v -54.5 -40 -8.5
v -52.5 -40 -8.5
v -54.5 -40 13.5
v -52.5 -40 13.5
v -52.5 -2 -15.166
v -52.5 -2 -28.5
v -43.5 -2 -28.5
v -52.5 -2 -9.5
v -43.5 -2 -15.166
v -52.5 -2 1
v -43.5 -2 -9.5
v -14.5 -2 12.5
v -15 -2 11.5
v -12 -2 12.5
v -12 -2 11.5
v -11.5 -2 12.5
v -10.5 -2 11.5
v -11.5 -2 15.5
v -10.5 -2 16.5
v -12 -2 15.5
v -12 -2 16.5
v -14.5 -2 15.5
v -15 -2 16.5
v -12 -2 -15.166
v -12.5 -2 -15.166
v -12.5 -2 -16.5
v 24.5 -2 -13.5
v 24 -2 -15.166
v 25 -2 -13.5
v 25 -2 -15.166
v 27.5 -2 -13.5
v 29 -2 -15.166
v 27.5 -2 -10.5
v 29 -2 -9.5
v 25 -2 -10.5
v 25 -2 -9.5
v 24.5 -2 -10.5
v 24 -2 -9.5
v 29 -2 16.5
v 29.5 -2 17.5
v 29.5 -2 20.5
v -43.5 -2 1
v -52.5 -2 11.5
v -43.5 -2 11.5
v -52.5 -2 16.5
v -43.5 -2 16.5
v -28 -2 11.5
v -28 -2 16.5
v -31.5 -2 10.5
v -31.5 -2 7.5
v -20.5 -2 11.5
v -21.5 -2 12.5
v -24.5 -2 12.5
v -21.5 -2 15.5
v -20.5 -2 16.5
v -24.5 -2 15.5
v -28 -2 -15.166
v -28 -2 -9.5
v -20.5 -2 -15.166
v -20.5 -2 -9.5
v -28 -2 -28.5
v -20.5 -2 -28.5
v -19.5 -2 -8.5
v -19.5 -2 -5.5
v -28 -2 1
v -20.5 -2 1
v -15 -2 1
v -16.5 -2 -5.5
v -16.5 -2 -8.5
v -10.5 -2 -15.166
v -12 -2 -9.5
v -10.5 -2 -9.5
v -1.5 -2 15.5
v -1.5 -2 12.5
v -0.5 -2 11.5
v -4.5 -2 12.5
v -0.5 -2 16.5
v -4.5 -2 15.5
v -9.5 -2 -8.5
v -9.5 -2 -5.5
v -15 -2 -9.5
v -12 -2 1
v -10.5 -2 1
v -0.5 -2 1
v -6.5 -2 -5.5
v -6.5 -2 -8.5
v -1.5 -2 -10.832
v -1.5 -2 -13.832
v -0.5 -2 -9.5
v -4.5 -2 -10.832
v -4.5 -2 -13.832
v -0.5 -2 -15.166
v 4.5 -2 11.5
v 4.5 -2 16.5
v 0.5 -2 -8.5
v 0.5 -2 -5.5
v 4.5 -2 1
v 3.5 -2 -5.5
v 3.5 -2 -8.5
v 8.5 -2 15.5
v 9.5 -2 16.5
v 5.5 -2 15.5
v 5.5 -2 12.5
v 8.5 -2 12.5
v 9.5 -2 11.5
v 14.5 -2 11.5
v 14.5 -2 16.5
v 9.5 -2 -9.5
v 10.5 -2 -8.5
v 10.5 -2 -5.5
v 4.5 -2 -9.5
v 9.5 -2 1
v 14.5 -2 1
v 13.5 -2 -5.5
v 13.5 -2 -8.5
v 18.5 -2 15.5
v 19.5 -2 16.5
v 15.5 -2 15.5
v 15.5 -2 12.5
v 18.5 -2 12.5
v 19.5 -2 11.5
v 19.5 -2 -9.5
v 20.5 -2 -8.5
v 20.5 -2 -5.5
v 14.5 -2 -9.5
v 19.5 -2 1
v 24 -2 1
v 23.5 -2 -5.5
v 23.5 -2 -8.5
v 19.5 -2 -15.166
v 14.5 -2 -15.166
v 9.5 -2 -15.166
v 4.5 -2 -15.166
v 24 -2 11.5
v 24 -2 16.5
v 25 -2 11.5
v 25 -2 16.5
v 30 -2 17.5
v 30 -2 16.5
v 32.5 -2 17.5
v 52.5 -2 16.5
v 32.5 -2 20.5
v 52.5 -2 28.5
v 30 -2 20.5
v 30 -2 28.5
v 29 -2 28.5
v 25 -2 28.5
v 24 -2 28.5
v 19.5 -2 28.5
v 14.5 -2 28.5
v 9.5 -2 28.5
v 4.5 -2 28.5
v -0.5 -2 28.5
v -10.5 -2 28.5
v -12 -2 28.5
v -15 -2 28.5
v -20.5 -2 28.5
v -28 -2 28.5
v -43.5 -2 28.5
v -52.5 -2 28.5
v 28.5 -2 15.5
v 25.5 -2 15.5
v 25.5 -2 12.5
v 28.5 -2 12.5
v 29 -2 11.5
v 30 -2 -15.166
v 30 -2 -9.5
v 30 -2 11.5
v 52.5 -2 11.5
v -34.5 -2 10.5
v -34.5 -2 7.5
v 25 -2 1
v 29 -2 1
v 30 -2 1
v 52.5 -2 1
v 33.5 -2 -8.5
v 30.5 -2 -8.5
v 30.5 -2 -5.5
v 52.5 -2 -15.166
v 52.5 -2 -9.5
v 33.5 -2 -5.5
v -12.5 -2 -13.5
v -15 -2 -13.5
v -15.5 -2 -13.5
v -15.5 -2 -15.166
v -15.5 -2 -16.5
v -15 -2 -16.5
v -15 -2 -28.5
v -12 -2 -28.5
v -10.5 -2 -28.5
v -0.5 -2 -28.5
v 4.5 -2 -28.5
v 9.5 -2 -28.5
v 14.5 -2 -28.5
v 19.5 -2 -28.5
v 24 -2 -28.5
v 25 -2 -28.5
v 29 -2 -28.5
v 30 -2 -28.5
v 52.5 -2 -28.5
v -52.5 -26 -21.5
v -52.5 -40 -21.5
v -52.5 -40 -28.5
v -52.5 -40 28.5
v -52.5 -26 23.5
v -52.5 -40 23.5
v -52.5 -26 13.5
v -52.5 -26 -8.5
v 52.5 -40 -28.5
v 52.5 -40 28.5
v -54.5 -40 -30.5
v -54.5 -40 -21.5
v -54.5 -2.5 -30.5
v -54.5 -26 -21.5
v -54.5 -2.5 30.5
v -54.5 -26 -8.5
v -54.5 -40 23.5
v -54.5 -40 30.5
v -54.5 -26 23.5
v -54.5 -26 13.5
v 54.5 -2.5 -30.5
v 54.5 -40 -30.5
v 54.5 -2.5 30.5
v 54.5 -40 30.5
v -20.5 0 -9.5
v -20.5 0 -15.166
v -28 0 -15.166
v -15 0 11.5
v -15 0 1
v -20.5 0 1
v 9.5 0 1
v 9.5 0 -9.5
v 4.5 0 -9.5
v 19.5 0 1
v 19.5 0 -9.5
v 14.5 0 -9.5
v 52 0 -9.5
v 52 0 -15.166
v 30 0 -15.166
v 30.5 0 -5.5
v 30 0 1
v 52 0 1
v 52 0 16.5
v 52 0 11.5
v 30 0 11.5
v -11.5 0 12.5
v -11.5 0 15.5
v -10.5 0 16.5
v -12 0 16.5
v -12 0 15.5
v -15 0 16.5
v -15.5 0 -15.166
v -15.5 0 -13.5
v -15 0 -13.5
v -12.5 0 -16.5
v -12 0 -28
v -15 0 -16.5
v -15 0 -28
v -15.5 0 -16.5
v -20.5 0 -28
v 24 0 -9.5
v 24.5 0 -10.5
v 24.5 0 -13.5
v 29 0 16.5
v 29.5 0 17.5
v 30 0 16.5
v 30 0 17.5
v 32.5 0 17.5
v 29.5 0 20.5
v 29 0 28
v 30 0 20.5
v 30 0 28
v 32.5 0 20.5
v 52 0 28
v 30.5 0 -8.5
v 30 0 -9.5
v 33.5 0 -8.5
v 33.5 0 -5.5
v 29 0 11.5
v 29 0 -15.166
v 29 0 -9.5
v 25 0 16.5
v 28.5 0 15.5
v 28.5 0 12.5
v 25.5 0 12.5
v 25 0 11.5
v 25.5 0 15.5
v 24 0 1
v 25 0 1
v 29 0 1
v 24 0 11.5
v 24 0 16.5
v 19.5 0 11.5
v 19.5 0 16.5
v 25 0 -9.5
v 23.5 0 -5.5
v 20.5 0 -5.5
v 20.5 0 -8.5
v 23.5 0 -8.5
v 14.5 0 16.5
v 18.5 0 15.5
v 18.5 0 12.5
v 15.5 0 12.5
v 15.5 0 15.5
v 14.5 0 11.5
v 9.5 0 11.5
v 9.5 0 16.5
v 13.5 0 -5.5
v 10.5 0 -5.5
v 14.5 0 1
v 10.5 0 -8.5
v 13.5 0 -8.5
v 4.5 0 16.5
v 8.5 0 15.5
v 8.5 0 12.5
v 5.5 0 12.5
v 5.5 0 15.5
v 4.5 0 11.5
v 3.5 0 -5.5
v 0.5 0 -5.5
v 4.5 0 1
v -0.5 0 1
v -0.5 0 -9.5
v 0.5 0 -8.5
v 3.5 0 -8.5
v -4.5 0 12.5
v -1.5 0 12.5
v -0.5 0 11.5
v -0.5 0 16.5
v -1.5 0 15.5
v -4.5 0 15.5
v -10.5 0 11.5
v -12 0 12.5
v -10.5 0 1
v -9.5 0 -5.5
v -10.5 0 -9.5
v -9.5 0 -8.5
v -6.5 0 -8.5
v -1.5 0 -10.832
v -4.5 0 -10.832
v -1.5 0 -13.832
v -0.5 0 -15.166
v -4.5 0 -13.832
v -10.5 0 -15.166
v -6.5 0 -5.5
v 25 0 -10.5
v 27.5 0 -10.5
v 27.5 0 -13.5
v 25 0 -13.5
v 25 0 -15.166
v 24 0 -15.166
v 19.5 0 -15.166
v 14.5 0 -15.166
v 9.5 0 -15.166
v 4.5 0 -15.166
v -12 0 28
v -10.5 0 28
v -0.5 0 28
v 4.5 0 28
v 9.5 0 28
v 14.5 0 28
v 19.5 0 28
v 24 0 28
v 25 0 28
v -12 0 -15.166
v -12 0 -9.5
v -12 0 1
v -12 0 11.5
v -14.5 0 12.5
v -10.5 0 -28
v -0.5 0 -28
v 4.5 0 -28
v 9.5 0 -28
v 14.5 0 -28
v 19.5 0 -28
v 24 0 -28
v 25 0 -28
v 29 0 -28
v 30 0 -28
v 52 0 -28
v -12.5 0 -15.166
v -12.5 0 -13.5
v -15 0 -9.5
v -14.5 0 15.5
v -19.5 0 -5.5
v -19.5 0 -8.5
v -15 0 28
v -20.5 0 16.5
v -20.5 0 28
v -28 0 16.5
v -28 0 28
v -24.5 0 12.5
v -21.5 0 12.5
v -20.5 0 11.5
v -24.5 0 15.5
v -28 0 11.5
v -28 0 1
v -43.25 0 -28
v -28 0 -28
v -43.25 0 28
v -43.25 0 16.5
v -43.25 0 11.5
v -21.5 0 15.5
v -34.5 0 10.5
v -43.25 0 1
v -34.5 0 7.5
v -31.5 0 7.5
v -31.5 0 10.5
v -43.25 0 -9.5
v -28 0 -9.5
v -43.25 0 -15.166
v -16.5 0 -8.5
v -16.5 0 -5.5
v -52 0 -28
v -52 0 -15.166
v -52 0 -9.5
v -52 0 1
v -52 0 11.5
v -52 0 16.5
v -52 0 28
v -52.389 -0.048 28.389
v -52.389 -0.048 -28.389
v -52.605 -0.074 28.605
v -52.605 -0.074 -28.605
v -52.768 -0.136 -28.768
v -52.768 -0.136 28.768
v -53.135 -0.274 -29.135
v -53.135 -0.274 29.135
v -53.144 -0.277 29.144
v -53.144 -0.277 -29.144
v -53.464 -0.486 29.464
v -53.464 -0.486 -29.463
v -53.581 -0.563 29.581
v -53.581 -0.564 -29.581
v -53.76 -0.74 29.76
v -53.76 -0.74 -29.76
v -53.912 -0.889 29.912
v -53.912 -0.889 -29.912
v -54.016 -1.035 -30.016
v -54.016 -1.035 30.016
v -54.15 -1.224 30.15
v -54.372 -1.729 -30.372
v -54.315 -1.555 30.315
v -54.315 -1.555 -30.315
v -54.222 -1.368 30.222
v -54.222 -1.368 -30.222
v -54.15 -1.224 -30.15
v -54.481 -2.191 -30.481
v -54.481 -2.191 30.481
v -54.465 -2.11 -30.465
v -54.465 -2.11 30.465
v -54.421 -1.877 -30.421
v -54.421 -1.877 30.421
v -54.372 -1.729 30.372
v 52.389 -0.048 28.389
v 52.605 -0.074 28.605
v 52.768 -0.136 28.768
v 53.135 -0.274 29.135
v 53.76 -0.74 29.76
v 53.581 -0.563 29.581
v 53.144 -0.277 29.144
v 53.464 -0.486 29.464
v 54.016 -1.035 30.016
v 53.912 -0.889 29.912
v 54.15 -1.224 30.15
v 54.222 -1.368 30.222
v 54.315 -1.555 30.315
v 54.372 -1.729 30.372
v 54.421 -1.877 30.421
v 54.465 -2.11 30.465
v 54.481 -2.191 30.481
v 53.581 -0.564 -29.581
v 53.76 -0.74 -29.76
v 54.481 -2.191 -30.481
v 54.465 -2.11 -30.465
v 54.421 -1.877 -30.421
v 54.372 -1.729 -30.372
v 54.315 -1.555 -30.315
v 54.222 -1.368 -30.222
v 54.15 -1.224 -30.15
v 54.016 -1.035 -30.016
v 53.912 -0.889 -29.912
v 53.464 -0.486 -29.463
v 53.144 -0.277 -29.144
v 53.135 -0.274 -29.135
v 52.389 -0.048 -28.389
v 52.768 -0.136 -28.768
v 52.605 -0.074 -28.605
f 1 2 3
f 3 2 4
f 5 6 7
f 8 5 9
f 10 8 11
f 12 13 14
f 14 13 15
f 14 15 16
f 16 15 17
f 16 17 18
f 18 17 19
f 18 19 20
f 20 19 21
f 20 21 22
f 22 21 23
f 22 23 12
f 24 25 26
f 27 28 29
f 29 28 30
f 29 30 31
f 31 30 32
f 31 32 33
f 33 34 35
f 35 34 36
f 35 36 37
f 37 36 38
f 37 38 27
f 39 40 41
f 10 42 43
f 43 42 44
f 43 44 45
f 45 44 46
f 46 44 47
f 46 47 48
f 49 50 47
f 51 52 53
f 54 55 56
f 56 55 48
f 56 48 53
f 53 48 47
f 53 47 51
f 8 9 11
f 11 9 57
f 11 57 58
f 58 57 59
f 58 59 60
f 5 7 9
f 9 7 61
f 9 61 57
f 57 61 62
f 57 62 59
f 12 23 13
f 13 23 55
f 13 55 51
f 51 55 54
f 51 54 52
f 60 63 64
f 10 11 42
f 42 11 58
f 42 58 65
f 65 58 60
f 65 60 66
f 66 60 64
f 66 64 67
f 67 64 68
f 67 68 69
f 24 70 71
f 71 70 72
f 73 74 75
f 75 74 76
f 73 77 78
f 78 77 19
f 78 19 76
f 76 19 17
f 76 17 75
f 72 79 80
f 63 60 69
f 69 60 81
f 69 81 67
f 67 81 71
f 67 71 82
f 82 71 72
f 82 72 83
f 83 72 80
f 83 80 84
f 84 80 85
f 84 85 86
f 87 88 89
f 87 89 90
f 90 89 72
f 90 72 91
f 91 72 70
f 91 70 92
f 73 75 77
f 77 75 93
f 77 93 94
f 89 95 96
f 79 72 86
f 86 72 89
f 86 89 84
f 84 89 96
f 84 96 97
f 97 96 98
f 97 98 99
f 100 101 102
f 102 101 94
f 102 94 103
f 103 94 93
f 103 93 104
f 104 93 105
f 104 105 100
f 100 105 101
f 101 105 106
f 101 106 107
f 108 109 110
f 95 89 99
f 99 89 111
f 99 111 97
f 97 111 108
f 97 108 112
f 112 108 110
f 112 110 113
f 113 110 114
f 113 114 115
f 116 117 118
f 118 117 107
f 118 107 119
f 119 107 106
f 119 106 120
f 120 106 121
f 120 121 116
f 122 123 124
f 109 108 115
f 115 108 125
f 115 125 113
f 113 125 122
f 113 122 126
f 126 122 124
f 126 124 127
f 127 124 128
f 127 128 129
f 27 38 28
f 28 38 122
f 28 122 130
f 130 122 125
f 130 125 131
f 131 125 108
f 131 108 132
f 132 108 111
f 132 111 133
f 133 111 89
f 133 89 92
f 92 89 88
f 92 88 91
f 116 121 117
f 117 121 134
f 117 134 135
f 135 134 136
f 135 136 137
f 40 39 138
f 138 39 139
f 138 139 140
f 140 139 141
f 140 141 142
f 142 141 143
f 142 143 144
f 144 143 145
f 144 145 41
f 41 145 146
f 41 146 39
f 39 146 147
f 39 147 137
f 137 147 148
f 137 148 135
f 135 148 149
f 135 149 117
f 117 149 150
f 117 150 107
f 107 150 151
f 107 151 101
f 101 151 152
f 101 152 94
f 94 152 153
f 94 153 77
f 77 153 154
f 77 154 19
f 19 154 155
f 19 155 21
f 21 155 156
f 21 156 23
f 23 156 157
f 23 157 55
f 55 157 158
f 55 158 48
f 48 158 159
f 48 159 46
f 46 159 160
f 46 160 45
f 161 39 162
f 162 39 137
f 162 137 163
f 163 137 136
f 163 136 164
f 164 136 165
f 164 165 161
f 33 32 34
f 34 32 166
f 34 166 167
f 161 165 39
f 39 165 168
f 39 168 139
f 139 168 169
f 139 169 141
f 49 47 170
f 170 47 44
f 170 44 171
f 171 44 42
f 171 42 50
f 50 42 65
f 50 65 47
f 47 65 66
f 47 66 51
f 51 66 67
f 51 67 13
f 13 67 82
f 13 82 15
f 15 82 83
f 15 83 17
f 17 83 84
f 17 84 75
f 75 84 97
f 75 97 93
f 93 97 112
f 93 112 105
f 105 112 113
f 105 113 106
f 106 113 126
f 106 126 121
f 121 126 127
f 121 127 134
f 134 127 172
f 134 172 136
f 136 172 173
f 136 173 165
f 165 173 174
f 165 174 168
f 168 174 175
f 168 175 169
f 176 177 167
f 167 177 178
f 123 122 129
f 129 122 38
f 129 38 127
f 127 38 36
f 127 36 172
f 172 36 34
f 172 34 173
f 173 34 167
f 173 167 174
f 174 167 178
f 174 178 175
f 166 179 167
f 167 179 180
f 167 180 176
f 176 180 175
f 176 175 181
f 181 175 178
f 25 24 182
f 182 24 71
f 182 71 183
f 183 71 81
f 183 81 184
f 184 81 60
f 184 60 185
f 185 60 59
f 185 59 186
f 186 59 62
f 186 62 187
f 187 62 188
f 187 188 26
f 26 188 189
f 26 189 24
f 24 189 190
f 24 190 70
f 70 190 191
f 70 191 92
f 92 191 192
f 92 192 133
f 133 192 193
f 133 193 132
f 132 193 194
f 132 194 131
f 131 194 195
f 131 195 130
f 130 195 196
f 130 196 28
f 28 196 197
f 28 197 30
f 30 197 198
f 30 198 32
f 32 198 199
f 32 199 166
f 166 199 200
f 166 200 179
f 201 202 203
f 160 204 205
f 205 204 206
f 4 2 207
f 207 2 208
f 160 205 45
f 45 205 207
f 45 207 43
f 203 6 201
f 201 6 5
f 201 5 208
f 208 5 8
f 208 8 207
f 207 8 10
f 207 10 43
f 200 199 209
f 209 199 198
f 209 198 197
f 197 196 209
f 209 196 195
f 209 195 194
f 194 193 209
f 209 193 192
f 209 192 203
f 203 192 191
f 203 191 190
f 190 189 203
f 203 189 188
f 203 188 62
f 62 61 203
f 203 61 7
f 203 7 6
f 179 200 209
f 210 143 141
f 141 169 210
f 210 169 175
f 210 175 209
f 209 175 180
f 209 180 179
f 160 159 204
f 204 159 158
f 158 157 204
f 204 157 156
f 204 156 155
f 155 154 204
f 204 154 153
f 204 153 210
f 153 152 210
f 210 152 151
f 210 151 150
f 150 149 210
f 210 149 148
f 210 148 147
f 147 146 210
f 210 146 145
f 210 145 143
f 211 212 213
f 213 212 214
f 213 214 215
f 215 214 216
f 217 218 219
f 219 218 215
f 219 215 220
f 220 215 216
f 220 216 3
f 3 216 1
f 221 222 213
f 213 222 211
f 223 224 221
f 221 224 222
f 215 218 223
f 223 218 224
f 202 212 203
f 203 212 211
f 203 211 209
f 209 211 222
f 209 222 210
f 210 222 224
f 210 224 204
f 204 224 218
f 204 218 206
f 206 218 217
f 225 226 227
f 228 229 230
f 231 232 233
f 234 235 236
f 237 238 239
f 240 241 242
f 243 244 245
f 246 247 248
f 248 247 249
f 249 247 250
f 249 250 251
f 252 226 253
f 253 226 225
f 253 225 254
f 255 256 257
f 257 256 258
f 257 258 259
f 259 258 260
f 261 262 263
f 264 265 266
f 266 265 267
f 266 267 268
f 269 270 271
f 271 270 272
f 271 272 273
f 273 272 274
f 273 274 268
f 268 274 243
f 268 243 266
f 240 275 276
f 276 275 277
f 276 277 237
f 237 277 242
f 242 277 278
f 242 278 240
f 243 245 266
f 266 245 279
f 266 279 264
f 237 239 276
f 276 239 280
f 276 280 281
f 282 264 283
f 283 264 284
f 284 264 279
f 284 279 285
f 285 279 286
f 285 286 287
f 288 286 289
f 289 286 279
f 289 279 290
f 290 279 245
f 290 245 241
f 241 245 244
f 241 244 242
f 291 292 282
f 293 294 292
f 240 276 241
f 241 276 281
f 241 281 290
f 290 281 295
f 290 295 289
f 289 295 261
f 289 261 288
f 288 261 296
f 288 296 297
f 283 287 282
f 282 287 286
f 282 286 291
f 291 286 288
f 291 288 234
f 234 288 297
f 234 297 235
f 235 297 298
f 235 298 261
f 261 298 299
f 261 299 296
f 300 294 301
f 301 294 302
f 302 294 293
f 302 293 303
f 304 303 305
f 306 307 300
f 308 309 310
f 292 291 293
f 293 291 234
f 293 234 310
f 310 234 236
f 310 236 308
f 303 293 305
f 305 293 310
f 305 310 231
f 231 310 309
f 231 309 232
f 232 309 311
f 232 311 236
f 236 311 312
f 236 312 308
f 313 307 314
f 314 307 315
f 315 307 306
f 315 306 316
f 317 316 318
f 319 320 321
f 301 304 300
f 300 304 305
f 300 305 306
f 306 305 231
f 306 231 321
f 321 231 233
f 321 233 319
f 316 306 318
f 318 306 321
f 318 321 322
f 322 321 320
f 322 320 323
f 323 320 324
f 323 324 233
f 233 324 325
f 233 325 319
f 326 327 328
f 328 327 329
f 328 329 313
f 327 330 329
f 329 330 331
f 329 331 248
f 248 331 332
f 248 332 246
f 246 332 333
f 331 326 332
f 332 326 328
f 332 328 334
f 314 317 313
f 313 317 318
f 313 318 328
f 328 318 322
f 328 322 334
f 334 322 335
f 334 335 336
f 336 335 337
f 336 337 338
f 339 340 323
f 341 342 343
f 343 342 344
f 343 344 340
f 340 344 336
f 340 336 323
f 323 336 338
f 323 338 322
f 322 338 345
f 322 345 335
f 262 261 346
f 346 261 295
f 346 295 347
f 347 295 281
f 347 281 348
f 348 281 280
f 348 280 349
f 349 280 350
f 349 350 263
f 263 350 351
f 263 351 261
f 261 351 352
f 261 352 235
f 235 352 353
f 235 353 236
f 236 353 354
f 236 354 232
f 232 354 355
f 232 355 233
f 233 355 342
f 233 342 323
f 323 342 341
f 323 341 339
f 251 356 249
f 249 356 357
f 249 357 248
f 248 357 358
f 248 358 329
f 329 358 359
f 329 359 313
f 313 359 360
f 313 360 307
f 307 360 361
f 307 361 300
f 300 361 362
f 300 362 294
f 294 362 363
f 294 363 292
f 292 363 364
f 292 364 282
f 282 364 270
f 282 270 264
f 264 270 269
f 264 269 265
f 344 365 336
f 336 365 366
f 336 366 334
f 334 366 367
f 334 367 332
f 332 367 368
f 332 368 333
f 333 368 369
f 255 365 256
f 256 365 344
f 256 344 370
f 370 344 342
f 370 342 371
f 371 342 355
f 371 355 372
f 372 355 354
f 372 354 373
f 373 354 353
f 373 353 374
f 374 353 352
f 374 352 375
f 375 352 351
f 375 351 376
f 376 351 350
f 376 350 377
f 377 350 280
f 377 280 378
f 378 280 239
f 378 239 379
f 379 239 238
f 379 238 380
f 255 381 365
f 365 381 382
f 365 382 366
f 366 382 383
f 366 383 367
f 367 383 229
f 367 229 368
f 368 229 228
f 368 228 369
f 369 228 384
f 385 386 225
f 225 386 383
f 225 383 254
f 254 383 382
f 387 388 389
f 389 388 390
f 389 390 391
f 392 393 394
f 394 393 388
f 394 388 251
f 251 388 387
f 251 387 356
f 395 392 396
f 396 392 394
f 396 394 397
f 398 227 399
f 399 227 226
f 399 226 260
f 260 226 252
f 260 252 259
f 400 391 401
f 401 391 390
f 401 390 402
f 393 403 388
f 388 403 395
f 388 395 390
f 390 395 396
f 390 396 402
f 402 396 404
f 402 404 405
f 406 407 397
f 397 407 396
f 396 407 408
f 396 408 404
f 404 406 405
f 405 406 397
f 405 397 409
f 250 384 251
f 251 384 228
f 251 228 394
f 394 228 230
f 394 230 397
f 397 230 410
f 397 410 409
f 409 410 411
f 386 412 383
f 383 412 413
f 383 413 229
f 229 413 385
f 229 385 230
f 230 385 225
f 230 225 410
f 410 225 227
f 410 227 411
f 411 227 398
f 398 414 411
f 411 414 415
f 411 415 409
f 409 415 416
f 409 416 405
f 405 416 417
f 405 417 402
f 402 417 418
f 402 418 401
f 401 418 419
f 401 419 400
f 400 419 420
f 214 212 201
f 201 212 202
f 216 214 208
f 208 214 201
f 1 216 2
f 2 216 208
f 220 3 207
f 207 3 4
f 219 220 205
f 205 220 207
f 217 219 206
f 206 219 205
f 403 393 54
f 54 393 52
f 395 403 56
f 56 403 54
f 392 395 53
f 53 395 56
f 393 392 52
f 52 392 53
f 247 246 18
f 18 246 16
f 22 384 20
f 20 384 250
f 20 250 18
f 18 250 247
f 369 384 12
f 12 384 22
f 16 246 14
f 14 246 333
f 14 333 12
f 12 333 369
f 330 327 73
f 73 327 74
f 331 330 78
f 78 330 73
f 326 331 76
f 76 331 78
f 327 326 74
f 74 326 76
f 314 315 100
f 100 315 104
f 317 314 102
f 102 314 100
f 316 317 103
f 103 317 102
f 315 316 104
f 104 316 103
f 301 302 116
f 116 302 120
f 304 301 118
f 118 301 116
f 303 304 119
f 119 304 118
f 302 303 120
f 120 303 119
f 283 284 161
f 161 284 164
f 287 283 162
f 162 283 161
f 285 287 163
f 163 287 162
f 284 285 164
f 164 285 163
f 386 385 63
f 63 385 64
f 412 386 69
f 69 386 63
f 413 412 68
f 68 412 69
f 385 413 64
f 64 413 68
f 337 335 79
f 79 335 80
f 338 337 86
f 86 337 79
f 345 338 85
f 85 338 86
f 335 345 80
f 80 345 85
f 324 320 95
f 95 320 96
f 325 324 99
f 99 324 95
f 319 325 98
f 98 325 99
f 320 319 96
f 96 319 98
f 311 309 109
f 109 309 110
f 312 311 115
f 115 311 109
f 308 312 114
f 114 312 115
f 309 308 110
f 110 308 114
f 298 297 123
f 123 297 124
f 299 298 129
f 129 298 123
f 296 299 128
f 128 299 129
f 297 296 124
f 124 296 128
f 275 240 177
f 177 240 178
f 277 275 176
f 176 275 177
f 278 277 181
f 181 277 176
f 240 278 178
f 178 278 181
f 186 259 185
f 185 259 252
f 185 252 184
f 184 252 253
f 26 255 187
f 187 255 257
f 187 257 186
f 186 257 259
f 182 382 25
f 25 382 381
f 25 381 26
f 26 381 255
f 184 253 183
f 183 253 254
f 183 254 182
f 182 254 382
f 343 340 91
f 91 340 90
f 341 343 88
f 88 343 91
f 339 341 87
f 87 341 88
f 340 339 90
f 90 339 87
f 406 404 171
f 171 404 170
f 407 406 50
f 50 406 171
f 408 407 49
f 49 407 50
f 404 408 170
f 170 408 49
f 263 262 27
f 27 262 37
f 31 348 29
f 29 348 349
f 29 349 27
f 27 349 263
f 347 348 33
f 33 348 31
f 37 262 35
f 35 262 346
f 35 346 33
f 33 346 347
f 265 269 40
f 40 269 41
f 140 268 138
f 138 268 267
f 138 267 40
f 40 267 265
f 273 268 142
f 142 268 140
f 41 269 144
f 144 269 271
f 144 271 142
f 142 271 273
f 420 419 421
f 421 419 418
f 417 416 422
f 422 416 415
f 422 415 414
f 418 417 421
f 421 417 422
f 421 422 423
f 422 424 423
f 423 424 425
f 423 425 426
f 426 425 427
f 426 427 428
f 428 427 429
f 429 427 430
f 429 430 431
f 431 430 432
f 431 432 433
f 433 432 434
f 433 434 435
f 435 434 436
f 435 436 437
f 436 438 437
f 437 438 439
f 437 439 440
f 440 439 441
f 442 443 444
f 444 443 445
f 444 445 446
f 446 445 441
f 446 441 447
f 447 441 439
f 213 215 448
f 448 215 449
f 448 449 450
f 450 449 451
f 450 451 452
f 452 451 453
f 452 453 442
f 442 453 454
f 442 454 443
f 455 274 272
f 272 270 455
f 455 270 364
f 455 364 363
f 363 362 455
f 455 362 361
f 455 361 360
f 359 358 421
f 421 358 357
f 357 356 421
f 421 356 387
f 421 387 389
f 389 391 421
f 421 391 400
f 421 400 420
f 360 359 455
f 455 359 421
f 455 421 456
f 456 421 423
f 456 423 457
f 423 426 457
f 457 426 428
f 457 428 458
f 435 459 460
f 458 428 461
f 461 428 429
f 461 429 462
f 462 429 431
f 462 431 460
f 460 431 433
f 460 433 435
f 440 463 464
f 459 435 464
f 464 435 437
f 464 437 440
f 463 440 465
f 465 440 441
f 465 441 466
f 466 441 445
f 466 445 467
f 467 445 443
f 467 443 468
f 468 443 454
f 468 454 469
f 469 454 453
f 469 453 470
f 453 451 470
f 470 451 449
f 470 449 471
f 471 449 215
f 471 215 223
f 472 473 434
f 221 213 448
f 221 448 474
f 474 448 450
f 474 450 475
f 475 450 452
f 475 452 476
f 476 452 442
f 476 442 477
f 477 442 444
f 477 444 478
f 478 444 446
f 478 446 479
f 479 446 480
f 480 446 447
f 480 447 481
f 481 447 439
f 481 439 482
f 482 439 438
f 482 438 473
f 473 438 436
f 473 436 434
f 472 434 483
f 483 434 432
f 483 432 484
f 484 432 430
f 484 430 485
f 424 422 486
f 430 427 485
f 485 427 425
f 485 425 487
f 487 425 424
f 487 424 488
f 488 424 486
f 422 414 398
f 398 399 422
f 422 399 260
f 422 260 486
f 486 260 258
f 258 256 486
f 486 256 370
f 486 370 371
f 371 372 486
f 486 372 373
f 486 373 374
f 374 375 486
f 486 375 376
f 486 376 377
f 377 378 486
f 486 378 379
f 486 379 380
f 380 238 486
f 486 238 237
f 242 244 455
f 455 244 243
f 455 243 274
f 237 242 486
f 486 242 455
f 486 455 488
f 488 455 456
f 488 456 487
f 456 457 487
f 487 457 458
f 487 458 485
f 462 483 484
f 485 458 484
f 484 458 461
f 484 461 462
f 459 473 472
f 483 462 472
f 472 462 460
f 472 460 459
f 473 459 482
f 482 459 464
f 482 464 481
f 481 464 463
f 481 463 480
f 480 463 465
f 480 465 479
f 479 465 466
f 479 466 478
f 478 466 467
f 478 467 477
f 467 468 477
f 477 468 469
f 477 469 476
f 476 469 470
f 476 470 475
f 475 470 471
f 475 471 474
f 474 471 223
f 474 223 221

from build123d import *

# Parameters (mm, degrees)
SKETCH1_W           = 105
SKETCH1_H           = 57
BOSS_EXTRUDE1_DEPTH = 2
SKETCH2_W           = 109
SKETCH2_H           = 61
SKETCH2_W_2         = 105
SKETCH2_H_2         = 57
BOSS_EXTRUDE2_DEPTH = 40
SKETCH3_W           = 13
SKETCH3_H           = 14
SKETCH3_W_2         = 10
CUT_EXTRUDE1_DEPTH  = 2
SKETCH4_W           = 3
SKETCH4_H           = 3
CUT_EXTRUDE2_DEPTH  = 2
LPATTERN1_COUNT     = 6
LPATTERN1_PITCH     = 10
SKETCH5_W           = 3
SKETCH5_H           = 3
CUT_EXTRUDE3_DEPTH  = 2
LPATTERN2_COUNT     = 6
LPATTERN2_PITCH     = 10
SKETCH6_W           = 3
SKETCH6_H           = 3
CUT_EXTRUDE4_DEPTH  = 2
SKETCH7_W           = 3
SKETCH7_H           = 3
CUT_EXTRUDE5_DEPTH  = 2
FILLET2_R           = 2.5


with BuildPart() as part:
    # Sketch1 → Boss-Extrude1 (new body)
    with BuildSketch(Plane(origin=(0, 0, 0), x_dir=(1, 0, 0), z_dir=(0, 1, 0))):
        Rectangle(SKETCH1_W, SKETCH1_H)
    extrude(amount=-BOSS_EXTRUDE1_DEPTH)

    # Sketch2 → Boss-Extrude2 (add)
    with BuildSketch(Plane(origin=(0, 0, 0), x_dir=(1, 0, 0), z_dir=(0, 1, 0))):
        Rectangle(SKETCH2_W, SKETCH2_H)
        Rectangle(SKETCH2_W_2, SKETCH2_H_2, mode=Mode.SUBTRACT)
    extrude(amount=-BOSS_EXTRUDE2_DEPTH)

    # Sketch3 → Cut-Extrude1 (cut)
    with BuildSketch(Plane.ZY.offset(54.5)):
        with Locations((-15, -33)):
            Rectangle(SKETCH3_W, SKETCH3_H)
        with Locations((18.5, -33)):
            Rectangle(SKETCH3_W_2, SKETCH3_H)
    extrude(amount=-CUT_EXTRUDE1_DEPTH, mode=Mode.SUBTRACT)

    # Sketch4 → Cut-Extrude2 (cut)
    with BuildSketch(Plane(origin=(0, 0, 0), x_dir=(1, 0, 0), z_dir=(0, 1, 0))):
        with Locations((-23, -14)):
            Rectangle(SKETCH4_W, SKETCH4_H)
    cut_extrude2 = extrude(amount=-CUT_EXTRUDE2_DEPTH, mode=Mode.SUBTRACT)

    # LPattern1: Cut-Extrude2 ×6
    with Locations(*[(i * LPATTERN1_PITCH, 0, 0) for i in range(1, LPATTERN1_COUNT)]):
        add(cut_extrude2, mode=Mode.SUBTRACT)

    # Sketch5 → Cut-Extrude3 (cut)
    with BuildSketch(Plane(origin=(0, 0, 0), x_dir=(1, 0, 0), z_dir=(0, 1, 0))):
        with Locations((-18, 7)):
            Rectangle(SKETCH5_W, SKETCH5_H)
    cut_extrude3 = extrude(amount=-CUT_EXTRUDE3_DEPTH, mode=Mode.SUBTRACT)

    # LPattern2: Cut-Extrude3 ×6
    with Locations(*[(i * LPATTERN2_PITCH, 0, 0) for i in range(1, LPATTERN2_COUNT)]):
        add(cut_extrude3, mode=Mode.SUBTRACT)

    # Sketch6 → Cut-Extrude4 (cut)
    with BuildSketch(Plane(origin=(0, 0, 0), x_dir=(1, 0, 0), z_dir=(0, 1, 0))):
        with Locations((-14, 15)):
            Rectangle(SKETCH6_W, SKETCH6_H)
        with Locations((-3, 12.331798483)):
            Rectangle(SKETCH6_W, SKETCH6_H)
    extrude(amount=-CUT_EXTRUDE4_DEPTH, mode=Mode.SUBTRACT)

    # Sketch7 → Cut-Extrude5 (cut)
    with BuildSketch(Plane(origin=(0, 0, 0), x_dir=(1, 0, 0), z_dir=(0, 1, 0))):
        with Locations((-33, -9)):
            Rectangle(SKETCH7_W, SKETCH7_H)
        with Locations((26, 12)):
            Rectangle(SKETCH7_W, SKETCH7_H)
        with Locations((31, -19)):
            Rectangle(SKETCH7_W, SKETCH7_H)
    extrude(amount=-CUT_EXTRUDE5_DEPTH, mode=Mode.SUBTRACT)

    # Fillet2
    fillet2_edges = [part.edges().sort_by_distance(p)[0] for p in [
        (-54.5, 0, 0),
        (0, 0, 30.5),
        (54.5, 0, 0),
        (0, 0, -30.5),
    ]]
    fillet(fillet2_edges, radius=FILLET2_R)


solid = part.part
